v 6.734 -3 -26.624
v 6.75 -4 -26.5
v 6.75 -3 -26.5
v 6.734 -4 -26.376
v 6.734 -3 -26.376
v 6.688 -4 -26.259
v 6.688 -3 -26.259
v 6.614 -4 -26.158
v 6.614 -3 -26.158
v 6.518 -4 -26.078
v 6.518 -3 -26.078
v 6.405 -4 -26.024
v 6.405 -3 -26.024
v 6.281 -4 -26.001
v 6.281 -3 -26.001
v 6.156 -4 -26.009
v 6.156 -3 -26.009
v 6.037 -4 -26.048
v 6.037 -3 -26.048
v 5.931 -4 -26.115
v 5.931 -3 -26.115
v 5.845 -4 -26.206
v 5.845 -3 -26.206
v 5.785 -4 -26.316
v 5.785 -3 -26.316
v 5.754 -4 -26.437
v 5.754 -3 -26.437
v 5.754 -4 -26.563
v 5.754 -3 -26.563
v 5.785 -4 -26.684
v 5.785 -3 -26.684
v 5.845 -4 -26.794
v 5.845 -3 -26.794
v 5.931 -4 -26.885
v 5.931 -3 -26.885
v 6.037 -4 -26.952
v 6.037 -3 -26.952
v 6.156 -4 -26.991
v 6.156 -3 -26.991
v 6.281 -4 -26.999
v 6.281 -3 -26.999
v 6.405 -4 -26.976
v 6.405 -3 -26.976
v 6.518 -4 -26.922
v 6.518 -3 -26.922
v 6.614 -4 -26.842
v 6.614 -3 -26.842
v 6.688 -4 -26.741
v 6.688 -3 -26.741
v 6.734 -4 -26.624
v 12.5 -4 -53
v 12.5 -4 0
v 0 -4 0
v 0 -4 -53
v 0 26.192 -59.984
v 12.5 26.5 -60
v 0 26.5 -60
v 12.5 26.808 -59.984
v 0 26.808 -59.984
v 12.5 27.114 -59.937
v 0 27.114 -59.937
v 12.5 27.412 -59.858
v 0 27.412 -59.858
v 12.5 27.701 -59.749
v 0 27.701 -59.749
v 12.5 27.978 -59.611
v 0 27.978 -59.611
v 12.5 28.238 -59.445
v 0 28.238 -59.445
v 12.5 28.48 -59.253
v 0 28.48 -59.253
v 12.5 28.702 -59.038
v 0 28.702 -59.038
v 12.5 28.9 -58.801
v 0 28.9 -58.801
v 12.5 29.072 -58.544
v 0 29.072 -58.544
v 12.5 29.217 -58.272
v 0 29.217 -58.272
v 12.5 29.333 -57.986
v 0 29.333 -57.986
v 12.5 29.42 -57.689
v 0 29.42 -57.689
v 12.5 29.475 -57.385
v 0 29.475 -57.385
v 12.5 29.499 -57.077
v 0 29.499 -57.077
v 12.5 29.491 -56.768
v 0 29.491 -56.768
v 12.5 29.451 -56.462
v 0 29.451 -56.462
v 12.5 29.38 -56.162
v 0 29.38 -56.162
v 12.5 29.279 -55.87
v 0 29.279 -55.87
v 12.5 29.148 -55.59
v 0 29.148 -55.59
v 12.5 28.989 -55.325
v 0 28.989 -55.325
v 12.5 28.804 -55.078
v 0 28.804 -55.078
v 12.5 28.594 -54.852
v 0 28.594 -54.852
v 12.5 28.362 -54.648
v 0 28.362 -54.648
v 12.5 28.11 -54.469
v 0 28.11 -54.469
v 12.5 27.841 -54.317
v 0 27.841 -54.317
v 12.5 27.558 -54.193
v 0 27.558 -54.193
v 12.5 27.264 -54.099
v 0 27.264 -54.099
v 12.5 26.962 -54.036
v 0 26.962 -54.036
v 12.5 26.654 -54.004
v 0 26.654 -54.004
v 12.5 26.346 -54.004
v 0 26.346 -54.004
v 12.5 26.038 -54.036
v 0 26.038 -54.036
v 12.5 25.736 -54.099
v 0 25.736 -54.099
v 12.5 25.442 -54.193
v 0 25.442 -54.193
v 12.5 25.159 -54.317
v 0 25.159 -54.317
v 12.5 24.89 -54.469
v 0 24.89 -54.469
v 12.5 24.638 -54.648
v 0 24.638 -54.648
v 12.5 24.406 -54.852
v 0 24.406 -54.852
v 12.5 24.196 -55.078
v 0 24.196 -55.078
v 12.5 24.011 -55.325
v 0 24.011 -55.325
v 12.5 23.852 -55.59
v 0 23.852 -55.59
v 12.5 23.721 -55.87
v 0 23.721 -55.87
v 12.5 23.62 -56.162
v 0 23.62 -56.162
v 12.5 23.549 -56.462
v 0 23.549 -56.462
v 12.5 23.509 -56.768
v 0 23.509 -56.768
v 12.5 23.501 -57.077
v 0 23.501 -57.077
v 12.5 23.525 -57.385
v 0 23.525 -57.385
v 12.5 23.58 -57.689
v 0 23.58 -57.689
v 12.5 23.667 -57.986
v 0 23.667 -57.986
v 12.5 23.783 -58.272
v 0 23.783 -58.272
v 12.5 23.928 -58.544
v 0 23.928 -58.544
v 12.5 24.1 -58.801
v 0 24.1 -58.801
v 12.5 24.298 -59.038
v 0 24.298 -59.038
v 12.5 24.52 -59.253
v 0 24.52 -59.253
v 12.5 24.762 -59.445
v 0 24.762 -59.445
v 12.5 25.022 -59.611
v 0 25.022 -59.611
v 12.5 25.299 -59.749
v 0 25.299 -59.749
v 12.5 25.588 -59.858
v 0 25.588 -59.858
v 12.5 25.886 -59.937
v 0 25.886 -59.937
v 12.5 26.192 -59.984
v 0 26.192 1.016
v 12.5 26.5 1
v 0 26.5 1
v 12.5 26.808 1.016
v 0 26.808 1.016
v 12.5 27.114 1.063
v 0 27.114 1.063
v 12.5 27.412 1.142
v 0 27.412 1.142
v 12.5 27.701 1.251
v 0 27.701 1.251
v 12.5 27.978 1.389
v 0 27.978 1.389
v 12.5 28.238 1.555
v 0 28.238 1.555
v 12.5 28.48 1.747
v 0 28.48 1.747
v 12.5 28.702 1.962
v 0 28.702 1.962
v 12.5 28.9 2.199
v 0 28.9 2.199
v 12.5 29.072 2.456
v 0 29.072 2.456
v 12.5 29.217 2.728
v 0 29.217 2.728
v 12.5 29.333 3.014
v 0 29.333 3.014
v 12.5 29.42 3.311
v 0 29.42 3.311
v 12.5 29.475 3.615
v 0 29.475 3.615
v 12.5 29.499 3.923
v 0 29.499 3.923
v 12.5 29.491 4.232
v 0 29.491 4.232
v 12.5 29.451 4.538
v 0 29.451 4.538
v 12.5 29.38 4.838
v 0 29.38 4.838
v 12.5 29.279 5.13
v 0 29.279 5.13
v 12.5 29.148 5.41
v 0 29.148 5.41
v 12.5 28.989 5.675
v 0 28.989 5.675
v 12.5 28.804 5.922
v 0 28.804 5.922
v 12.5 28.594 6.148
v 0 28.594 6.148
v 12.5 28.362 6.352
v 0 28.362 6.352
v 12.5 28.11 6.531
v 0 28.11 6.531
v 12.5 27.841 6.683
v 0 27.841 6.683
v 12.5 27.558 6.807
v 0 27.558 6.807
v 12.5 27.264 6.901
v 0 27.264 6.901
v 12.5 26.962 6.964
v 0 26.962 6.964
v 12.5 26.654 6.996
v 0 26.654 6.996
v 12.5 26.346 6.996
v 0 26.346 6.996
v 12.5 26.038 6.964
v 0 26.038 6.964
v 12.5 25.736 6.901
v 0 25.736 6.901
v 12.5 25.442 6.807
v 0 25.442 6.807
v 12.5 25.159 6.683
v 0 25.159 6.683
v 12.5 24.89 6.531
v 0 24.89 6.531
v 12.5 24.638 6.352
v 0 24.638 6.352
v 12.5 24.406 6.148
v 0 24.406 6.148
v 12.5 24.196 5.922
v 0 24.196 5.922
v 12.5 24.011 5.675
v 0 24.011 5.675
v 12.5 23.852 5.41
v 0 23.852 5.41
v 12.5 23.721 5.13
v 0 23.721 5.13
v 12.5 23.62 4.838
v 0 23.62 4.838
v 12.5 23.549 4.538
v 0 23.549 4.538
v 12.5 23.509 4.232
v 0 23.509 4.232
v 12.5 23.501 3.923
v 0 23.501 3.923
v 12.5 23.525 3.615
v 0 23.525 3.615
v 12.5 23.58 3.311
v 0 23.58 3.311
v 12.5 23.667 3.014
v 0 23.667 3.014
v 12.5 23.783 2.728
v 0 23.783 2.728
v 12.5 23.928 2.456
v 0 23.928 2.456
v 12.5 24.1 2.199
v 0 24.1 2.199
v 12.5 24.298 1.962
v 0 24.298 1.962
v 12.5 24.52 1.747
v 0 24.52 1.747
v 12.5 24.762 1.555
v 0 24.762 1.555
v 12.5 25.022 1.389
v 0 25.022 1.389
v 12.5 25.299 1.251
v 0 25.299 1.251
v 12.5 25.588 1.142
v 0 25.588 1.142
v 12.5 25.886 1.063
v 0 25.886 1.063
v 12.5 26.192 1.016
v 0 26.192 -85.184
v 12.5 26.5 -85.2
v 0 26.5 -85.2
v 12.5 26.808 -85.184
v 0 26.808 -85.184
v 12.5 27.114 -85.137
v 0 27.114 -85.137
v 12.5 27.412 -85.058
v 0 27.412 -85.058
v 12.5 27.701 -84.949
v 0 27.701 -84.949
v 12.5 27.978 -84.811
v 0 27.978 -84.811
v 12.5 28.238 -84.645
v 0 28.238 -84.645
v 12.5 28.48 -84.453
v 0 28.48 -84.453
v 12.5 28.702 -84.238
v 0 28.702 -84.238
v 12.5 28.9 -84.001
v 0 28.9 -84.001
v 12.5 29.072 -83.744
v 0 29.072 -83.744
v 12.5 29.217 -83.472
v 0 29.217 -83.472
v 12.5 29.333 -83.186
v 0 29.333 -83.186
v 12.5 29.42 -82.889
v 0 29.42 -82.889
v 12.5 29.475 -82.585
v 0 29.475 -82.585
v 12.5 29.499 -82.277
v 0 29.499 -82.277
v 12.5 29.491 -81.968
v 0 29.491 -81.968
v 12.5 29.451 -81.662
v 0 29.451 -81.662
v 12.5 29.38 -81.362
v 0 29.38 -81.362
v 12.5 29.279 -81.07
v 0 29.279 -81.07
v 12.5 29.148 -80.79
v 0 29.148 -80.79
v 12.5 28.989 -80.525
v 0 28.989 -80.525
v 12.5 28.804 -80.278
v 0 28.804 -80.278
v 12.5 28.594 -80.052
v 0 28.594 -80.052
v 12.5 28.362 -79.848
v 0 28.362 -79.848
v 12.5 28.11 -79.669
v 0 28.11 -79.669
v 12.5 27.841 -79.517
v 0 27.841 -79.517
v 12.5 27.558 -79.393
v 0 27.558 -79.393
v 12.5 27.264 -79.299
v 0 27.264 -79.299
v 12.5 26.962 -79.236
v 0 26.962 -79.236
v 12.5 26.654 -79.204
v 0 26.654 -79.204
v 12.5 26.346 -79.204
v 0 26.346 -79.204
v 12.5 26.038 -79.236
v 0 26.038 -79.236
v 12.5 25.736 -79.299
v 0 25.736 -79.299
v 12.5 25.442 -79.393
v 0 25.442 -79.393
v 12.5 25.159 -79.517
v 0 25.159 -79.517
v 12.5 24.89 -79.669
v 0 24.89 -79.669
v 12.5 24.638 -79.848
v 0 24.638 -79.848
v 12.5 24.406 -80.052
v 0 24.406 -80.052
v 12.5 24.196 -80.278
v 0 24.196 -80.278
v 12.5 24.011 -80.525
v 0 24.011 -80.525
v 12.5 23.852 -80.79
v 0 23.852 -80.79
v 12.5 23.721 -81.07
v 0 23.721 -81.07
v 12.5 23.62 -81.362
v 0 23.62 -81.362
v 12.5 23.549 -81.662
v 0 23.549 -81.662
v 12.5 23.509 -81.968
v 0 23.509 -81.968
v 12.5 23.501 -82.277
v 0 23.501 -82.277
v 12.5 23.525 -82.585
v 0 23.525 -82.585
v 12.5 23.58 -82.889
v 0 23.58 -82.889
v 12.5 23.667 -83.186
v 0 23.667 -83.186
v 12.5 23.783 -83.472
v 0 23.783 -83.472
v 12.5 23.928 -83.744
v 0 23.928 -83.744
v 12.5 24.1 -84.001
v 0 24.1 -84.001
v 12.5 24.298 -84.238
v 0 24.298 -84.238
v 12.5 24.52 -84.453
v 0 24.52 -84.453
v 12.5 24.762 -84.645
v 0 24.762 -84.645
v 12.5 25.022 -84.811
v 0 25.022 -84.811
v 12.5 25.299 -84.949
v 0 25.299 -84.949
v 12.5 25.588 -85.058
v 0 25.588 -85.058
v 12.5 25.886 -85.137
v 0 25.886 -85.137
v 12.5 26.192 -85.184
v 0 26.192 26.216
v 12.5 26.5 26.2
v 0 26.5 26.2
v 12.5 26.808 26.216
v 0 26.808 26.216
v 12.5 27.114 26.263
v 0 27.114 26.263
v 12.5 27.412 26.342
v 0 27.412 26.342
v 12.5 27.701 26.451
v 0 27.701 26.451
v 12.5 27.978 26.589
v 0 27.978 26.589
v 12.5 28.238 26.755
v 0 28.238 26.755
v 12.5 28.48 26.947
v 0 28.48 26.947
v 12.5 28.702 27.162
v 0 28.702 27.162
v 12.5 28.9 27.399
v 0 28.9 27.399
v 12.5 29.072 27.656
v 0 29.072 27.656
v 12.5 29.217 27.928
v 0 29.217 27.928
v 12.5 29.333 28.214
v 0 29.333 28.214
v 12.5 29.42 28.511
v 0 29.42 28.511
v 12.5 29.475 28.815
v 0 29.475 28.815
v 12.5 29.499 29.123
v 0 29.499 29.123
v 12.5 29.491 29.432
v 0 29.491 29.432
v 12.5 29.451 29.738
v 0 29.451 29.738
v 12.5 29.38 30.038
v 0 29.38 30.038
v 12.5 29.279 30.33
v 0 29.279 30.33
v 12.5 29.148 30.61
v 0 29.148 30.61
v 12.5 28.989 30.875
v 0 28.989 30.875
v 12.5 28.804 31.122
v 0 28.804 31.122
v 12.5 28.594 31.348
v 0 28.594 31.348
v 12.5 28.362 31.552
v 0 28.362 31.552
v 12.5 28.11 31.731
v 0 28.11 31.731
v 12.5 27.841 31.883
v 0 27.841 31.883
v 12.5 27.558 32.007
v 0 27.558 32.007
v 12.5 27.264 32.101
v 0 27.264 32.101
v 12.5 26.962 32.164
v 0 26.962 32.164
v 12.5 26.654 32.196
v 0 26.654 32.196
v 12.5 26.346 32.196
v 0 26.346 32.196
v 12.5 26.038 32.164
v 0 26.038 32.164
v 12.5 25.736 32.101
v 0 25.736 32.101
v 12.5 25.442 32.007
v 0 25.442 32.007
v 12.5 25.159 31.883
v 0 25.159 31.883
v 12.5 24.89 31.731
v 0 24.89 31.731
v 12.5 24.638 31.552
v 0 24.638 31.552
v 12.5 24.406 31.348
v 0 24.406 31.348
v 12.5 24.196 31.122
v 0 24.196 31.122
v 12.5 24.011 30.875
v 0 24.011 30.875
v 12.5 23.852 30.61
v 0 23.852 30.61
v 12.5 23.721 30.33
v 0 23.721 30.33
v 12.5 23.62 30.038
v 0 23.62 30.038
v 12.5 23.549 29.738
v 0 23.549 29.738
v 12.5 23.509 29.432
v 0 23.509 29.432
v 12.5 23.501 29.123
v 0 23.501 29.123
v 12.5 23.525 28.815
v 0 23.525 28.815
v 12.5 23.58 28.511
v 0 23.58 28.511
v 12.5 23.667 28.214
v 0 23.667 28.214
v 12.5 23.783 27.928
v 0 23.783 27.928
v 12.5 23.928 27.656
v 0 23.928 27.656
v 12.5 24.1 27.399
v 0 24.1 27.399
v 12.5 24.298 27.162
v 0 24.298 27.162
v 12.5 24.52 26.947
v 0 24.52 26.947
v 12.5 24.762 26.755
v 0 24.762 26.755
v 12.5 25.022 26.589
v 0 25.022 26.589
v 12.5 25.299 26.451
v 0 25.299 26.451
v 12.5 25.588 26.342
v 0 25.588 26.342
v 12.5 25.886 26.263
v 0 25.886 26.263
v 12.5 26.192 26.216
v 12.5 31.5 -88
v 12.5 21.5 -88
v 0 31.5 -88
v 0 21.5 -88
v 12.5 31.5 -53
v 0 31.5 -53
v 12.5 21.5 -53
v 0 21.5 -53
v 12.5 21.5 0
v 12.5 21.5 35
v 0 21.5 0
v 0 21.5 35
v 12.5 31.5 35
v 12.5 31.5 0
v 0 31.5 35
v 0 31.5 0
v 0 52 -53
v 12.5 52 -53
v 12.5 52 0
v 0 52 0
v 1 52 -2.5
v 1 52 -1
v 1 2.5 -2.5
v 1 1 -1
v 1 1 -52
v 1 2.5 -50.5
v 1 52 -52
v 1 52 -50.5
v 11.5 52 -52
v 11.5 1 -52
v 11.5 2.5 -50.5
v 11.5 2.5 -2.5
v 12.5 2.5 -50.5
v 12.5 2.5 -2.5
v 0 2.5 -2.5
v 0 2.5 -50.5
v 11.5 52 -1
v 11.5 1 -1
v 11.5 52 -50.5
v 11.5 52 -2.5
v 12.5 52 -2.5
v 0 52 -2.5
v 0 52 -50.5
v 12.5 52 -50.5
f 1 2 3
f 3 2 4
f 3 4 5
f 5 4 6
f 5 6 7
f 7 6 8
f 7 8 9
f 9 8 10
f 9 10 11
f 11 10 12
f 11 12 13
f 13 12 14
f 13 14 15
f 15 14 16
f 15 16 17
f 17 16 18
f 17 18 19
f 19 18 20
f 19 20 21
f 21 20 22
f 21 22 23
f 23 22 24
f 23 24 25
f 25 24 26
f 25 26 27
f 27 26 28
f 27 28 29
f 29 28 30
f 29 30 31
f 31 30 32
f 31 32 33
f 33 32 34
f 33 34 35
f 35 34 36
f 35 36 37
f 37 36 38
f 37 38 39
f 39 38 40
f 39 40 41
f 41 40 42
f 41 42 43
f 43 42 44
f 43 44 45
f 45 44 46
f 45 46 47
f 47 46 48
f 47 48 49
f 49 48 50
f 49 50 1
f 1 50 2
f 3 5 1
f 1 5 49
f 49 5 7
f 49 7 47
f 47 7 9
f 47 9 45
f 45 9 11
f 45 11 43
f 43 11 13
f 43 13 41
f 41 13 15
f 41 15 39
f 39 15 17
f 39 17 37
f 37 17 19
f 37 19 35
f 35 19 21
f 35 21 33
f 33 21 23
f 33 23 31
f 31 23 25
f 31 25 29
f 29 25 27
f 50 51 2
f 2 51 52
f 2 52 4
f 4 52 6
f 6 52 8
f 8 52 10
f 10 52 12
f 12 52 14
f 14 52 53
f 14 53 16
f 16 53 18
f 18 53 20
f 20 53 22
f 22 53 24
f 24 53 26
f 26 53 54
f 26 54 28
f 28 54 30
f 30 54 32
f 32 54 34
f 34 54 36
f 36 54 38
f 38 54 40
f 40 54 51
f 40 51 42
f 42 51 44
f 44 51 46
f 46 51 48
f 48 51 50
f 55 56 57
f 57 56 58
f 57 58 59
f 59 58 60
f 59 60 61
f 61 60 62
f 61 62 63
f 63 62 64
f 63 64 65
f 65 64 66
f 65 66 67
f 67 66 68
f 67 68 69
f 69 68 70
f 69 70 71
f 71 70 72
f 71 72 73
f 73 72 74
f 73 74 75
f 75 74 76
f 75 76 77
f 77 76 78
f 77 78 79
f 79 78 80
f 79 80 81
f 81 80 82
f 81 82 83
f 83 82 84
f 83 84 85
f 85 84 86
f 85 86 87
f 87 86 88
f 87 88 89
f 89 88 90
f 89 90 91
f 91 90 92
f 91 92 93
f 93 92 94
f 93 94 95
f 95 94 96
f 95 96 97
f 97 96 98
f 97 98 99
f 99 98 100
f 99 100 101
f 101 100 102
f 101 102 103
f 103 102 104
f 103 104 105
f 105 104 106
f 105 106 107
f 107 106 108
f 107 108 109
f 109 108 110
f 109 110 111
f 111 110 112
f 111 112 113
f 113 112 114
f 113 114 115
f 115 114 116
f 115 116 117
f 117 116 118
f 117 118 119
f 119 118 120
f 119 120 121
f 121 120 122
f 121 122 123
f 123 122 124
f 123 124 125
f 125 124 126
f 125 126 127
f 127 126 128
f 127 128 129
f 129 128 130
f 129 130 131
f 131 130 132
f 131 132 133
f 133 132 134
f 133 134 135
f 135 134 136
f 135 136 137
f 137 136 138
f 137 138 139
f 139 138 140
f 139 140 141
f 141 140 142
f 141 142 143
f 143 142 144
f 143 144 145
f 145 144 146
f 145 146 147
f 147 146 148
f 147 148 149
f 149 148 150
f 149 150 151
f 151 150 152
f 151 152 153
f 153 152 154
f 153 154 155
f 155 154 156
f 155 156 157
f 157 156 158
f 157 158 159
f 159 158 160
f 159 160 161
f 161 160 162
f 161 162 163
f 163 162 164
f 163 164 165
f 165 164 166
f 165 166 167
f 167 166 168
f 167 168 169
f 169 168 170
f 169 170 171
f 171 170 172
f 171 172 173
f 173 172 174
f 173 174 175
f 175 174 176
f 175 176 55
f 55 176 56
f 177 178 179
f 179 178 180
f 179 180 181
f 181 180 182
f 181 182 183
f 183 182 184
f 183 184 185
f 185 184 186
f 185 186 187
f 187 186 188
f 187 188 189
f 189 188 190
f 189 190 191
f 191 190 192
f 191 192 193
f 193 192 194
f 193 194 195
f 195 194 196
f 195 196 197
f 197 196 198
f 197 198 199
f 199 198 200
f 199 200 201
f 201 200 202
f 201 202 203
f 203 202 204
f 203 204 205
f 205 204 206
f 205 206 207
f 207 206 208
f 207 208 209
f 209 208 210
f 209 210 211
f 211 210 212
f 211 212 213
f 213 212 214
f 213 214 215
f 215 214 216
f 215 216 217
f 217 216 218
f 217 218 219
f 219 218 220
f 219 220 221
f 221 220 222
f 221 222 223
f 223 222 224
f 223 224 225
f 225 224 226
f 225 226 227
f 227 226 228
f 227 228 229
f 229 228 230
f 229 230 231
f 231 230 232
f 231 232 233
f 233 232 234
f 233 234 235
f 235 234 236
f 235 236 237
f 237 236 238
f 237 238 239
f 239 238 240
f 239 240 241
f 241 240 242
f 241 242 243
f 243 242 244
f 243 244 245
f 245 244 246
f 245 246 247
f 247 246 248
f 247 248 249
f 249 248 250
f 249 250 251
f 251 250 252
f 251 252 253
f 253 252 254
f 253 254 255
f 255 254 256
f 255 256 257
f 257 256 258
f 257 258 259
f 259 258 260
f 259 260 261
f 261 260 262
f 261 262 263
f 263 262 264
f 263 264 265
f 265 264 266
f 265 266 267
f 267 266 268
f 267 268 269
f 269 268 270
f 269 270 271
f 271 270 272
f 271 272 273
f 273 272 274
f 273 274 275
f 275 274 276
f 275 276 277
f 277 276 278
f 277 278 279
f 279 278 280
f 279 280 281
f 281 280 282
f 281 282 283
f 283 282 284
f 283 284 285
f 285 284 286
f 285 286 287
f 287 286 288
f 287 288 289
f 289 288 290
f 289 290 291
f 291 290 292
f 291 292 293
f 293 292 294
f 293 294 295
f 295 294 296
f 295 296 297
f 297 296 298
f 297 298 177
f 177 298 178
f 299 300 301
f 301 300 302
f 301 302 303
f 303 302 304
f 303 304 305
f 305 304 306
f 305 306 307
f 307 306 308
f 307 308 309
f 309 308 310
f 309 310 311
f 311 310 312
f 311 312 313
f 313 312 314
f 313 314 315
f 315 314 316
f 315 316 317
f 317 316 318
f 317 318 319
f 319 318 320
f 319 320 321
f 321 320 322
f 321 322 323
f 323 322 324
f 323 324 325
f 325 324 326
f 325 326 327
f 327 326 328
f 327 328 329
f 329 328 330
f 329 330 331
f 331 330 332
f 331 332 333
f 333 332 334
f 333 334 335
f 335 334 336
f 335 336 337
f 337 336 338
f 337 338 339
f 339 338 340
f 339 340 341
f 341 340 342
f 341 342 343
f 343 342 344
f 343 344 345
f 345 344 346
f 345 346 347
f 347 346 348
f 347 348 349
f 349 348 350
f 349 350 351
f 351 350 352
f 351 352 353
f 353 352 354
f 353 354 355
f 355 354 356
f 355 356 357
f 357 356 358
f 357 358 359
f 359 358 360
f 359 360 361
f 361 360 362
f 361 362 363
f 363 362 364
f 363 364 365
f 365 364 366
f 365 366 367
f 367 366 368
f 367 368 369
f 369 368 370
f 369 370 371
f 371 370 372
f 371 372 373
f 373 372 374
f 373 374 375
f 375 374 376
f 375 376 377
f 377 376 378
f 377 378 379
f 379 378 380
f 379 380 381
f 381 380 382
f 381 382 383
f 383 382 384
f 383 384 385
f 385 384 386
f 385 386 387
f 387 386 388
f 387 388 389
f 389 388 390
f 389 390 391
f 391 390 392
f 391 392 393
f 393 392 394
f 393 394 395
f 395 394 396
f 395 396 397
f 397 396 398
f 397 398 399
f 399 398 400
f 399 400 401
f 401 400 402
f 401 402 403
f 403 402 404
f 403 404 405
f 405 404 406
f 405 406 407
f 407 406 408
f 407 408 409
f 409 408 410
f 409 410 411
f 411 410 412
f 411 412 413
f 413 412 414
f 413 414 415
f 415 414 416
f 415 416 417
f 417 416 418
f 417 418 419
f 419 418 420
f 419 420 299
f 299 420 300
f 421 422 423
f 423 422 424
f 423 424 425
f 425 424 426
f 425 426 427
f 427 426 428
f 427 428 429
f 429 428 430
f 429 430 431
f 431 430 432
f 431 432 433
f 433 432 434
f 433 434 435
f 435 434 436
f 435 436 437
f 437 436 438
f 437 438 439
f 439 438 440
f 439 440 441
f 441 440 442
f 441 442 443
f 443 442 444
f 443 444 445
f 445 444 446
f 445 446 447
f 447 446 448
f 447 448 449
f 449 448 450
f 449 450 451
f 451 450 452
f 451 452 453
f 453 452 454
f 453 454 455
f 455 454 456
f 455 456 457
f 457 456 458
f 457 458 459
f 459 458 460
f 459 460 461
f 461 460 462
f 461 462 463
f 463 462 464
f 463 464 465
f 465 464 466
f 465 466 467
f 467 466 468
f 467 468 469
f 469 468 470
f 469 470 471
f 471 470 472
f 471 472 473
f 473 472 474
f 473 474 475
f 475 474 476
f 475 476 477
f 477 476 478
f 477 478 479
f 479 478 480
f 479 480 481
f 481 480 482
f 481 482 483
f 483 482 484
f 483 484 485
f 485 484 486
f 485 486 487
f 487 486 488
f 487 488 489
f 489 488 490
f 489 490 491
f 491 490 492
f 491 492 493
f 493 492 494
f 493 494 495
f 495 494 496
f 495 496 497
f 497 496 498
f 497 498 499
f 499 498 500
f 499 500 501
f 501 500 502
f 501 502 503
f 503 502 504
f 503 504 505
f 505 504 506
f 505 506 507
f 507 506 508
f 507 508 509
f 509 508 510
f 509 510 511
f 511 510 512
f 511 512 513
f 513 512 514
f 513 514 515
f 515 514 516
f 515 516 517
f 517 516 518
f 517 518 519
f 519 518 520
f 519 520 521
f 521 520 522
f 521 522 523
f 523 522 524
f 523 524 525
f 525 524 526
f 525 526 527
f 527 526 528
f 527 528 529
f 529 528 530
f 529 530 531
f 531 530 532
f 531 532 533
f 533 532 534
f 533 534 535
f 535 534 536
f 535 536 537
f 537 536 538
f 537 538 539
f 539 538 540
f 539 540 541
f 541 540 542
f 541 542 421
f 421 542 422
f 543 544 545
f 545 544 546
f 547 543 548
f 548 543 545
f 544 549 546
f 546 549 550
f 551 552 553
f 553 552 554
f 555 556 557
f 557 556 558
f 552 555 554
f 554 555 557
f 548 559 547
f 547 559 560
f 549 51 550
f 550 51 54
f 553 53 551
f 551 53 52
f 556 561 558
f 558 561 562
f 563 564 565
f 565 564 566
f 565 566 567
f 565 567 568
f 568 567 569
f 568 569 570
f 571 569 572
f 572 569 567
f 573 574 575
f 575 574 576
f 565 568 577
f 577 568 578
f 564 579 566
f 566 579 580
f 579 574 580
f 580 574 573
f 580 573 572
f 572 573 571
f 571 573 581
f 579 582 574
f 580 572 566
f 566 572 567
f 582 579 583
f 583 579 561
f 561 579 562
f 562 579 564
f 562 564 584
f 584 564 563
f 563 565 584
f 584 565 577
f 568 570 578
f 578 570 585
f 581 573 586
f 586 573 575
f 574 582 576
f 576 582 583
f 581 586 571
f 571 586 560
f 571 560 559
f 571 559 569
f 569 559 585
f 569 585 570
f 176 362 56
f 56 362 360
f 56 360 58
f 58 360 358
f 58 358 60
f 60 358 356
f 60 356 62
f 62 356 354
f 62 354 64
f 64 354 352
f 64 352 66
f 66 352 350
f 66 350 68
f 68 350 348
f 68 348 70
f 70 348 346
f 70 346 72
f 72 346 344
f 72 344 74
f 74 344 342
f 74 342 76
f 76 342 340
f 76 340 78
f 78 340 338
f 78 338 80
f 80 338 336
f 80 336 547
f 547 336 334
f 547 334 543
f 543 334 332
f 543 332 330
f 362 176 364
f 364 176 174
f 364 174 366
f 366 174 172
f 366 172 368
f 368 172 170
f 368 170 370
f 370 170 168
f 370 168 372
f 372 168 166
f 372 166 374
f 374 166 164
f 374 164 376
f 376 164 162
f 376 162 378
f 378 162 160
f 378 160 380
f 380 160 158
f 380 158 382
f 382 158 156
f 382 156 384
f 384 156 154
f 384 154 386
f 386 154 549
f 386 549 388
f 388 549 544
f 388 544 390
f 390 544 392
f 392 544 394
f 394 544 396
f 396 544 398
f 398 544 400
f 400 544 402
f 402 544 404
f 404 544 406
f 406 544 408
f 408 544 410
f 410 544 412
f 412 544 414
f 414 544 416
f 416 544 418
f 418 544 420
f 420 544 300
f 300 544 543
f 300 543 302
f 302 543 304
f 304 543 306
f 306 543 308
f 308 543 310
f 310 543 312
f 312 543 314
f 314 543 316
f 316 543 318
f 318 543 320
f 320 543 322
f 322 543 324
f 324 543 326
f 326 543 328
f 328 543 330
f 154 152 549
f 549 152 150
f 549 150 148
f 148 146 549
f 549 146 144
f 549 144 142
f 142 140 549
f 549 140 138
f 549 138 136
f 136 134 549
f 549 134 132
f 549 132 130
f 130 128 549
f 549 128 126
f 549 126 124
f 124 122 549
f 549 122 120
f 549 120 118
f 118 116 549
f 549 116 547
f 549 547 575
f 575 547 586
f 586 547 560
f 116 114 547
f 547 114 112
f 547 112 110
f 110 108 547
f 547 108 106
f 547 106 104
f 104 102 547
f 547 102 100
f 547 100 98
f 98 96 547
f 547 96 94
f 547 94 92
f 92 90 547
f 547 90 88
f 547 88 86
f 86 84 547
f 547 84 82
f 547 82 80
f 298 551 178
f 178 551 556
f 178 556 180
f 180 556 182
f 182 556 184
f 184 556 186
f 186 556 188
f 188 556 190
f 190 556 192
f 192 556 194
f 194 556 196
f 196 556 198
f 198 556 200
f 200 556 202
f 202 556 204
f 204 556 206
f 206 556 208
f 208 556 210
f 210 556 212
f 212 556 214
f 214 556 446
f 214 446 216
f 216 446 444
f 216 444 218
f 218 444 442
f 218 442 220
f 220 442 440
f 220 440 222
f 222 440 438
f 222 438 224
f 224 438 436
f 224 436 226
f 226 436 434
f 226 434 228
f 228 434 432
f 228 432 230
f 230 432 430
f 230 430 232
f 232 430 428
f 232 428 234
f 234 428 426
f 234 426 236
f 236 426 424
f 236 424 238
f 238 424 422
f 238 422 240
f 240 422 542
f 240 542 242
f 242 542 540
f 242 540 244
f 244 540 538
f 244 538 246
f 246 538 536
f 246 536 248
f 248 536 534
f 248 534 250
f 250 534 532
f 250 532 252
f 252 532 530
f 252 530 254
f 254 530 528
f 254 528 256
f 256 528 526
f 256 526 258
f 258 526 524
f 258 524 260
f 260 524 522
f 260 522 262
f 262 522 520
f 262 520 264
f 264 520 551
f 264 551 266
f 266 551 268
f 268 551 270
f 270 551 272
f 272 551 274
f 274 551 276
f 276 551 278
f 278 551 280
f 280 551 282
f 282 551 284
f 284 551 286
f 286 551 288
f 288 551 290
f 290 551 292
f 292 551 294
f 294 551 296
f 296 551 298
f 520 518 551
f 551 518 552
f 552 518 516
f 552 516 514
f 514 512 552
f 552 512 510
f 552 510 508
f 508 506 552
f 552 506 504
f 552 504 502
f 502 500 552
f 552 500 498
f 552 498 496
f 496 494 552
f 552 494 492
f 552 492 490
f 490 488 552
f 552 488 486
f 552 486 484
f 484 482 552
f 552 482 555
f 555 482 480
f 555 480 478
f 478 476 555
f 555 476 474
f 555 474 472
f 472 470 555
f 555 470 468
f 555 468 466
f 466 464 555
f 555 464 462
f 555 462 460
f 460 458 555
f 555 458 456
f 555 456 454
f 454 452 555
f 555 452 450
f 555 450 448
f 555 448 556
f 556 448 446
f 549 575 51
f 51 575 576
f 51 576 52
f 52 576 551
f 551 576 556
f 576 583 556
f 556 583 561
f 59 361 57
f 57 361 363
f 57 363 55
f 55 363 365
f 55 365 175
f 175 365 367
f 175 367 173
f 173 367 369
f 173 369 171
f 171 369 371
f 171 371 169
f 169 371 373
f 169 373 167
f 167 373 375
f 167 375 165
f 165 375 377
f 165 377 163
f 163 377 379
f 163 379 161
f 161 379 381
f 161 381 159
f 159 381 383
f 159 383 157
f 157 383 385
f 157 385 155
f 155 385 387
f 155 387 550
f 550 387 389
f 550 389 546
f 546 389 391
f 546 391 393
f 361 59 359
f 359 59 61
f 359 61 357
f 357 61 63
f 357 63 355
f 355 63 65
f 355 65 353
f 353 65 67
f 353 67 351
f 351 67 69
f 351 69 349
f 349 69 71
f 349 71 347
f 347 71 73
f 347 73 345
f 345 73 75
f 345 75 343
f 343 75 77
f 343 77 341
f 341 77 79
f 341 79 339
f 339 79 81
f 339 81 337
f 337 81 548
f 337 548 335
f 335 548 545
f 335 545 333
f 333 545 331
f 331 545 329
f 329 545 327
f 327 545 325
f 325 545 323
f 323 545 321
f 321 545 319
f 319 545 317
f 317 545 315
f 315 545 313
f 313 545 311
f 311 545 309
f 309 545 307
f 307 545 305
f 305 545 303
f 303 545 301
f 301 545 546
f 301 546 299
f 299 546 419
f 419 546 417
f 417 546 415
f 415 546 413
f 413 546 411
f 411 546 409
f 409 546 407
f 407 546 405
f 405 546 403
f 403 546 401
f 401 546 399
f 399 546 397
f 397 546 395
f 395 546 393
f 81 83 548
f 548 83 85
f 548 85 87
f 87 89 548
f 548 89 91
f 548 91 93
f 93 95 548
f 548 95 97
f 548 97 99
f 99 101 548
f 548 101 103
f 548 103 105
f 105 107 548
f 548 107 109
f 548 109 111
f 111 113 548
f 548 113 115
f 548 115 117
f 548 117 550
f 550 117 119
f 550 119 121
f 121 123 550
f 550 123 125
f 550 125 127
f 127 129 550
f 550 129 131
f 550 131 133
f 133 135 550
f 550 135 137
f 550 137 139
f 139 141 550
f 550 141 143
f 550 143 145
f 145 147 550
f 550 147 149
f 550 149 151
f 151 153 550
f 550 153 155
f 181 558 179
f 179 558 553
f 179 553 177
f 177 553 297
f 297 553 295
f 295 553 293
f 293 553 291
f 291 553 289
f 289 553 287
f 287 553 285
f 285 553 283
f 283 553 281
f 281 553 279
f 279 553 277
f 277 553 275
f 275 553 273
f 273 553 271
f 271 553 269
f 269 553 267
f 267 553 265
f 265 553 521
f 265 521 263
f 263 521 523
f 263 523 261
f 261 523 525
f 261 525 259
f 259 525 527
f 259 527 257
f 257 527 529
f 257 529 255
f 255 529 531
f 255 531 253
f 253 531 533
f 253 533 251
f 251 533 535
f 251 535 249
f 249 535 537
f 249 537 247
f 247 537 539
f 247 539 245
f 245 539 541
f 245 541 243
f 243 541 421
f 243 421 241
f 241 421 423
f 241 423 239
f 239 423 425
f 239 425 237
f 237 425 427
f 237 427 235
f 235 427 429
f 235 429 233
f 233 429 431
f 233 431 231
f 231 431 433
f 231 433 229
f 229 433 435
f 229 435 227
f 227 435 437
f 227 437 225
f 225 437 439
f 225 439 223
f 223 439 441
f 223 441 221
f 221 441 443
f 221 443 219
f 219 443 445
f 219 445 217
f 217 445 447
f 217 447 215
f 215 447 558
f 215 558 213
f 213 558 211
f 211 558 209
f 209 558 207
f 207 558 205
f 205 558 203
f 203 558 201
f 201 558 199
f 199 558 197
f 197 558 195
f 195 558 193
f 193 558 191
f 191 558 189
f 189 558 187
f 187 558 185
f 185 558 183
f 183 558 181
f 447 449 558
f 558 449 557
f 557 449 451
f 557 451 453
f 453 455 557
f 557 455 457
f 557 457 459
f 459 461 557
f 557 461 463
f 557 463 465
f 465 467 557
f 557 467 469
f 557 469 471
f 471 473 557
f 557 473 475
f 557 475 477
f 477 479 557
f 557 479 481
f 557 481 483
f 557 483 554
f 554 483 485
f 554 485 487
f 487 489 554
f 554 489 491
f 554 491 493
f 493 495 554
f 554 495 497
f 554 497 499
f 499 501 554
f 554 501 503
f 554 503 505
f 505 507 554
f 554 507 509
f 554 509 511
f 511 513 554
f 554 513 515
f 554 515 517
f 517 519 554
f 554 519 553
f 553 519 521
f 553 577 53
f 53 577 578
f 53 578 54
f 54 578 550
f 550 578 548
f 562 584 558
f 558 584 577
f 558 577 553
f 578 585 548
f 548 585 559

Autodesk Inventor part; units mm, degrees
ref_plane "YZ Plane" through (0, 0, 0) normal (1, 0, 0) x (0, 1, 0)
ref_plane "XZ Plane" through (0, 0, 0) normal (0, 1, 0) x (-1, 0, 0)
ref_plane "XY Plane" through (0, 0, 0) normal (0, 0, 1) x (1, 0, 0)
sketch "Sketch1" plane through (0, 0, 0) normal (1, 0, 0) x (0, 1, 0)
  line L0 (0, 0) -> (52, 0)
  line L1 (52, 0) -> (52, -53)
  line L2 (52, -53) -> (0, -53)
  line L3 (0, -53) -> (0, 0)
  line L4 (0, 0) -> (2.5, 0) construction
  line L5 (2.5, 0) -> (2.5, -2.5) construction
  line L6 (52, -53) -> (52, -50.5) construction
  line L7 (52, 0) -> (52, -2.5) construction
  line L8 (2.5, -2.5) -> (52, -2.5)
  line L9 (52, -2.5) -> (52, -50.5)
  line L10 (52, -50.5) -> (2.5, -50.5)
  line L11 (2.5, -50.5) -> (2.5, -2.5)
  dimension "d0" = 53
  dimension "d1" = 52
  dimension "d2" = 2.5
  dimension "d3" = 2.5
  dimension "d4" = 2.5
  dimension "d5" = 2.5
extrude "Extrusion1" add sketch "Sketch1" along normal blind 12.5 contours L0 L1 L8 L11 L10 L2 L3
sketch "Sketch2" plane through (0, 52, -50.5) normal (0, 1, 0) x (1, 0, 0)
  line L0 (12.5, 2.5) -> (12.5, 0) construction
  line L1 (12.5, 2.5) -> (11.5, 2.5) construction
  line L2 (0, 2.5) -> (12.5, 2.5) construction
  line L3 (11.5, 2.5) -> (11.5, 1.5) construction
  line L4 (0, 2.5) -> (1, 2.5) construction
  line L5 (1, 2.5) -> (1, 1.5) construction
  line L6 (0, -50.5) -> (12.5, -50.5) construction
  line L7 (12.5, -50.5) -> (11.5, -50.5) construction
  line L8 (11.5, -50.5) -> (11.5, -49.5) construction
  line L9 (0, -50.5) -> (1, -50.5) construction
  line L10 (1, -50.5) -> (1, -49.5) construction
  line L11 (1, -49.5) -> (11.5, -49.5)
  line L12 (11.5, -49.5) -> (11.5, -48)
  line L13 (11.5, -48) -> (1, -48)
  line L14 (1, -48) -> (1, -49.5)
  line L15 (1, 1.5) -> (11.5, 1.5)
  line L16 (11.5, 1.5) -> (11.5, 0)
  line L17 (11.5, 0) -> (1, 0)
  line L18 (1, 0) -> (1, 1.5)
  dimension "d8" = 1
  dimension "d9" = 1
  dimension "d10" = 1
  dimension "d11" = 1
  dimension "d14" = 1
  dimension "d15" = 1
  dimension "d16" = 1
  dimension "d17" = 1
  dimension "d18" = 1.5
  dimension "d19" = 10.5
  dimension "d20" = 10.5
  dimension "d21" = 1.5
extrude "Extrusion2" cut sketch "Sketch2" against normal blind 51
sketch "Sketch3" plane through (0, 2.5, -2.5) normal (0, 1, 0) x (1, 0, 0)
  line L0 (0, -2.5) -> (1, -2.5) construction
  line L1 (0, -2.5) -> (12.5, -2.5) construction
  line L2 (0, -2.5) -> (0, -1.5) construction
  line L3 (0, -2.5) -> (0, 50.5) construction
  line L4 (0, -1.5) -> (1, -1.5) construction
  line L5 (1, -1.5) -> (11.5, -1.5)
  line L6 (11.5, -1.5) -> (11.5, 49.5)
  line L7 (11.5, 49.5) -> (1, 49.5)
  line L8 (1, 49.5) -> (1, -1.5)
  dimension "d23" = 1
  dimension "d24" = 1
  dimension "d25" = 10.5
  dimension "d26" = 51
extrude "Extrusion3" cut sketch "Sketch3" against normal blind 1.5
sketch "Sketch4" plane through (12.5, 0, 0) normal (1, 0, 0) x (0, 0, -1)
  line L0 (53, 52) -> (50.5, 52) construction
  line L1 (53, 52) -> (53, 26.5) construction
  line L2 (53, 26.5) -> (108.8773, 26.5) construction
  line L3 (53, 26.5) -> (53, 31.5) construction
  line L4 (53, 0) -> (53, 52) construction
  line L5 (53, 31.5) -> (88, 31.5)
  line L6 (88, 31.5) -> (88, 21.5)
  line L7 (88, 21.5) -> (53, 21.5)
  line L8 (53, 21.5) -> (53, 31.5)
  line L9 (0, 52) -> (0, 26.5) construction
  line L10 (0, 52) -> (0, 0) construction
  line L11 (0, 26.5) -> (-54.8348, 26.5) construction
  line L12 (0, 26.5) -> (0, 31.5) construction
  line L13 (0, 31.5) -> (-35, 31.5)
  line L14 (-35, 31.5) -> (-35, 21.5)
  line L15 (-35, 21.5) -> (0, 21.5)
  line L16 (0, 21.5) -> (0, 31.5)
  dimension "d29" = 25.5
  dimension "d30" = 5
  dimension "d31" = 10
  dimension "d32" = 35
  dimension "d41" = 25.5
  dimension "d42" = 5
  dimension "d43" = 35
  dimension "d44" = 10
extrude "Extrusion4" add sketch "Sketch4" against normal blind 12.5
sketch "Sketch5" plane through (12.5, 0, 0) normal (1, 0, 0) x (0, 0, -1)
  line L0 (53, 52) -> (50.5, 52) construction
  line L1 (50.5, 52) -> (50.5, 26.5) construction
  line L2 (50.5, 52) -> (50.5, 2.5) construction
  line L3 (50.5, 26.5) -> (53, 26.5) construction
  line L4 (53, 26.5) -> (57, 26.5) construction
  circle A0 centre (57, 26.5) radius 3
  line L5 (57, 26.5) -> (82.2, 26.5) construction
  circle A1 centre (82.2, 26.5) radius 3
  line L6 (0, 52) -> (0, 26.5) construction
  line L7 (0, 26.5) -> (-4, 26.5) construction
  line L8 (-4, 26.5) -> (-29.2, 26.5) construction
  circle A2 centre (-4, 26.5) radius 3
  circle A3 centre (-29.2, 26.5) radius 3
  point P0 (0, 0)
  dimension "d35" = 25.5
  dimension "d36" = 2.5
  dimension "d37" = 6
  dimension "d38" = 4
  dimension "d39" = 25.2
  dimension "d40" = 6
  dimension "d45" = 25.5
  dimension "d46" = 4
  dimension "d47" = 25.2
  dimension "d48" = 6
  dimension "d49" = 6
extrude "Extrusion5" cut sketch "Sketch5" against normal blind 12.5
sketch "Sketch6" plane through (0, 0, -53) normal (0, -1, 0) x (1, 0, 0)
  line L0 (12.5, 53) -> (0, 53)
  line L1 (0, 53) -> (0, 0)
  line L2 (0, 0) -> (12.5, 0)
  line L3 (12.5, 0) -> (12.5, 53)
  line L4 (12.5, 53) -> (12.5, 0) projected
  dimension "d54" = 0
extrude "Extrusion6" add sketch "Sketch6" along normal blind 4
sketch "Sketch7" plane through (0, -4, -53) normal (0, -1, 0) x (1, 0, 0)
  line L0 (12.5, 53) -> (0, 53) construction
  line L1 (6.25, 53) -> (6.25, 26.5) construction
  circle A0 centre (6.25, 26.5) radius 0.5
  dimension "d55" = 26.5
  dimension "d56" = 1
extrude "Extrusion7" cut sketch "Sketch7" against normal blind 1
equation "\"d0\" = lfan + 2 * thickness"
equation "\"d1\" = lfan + thickness"
equation "\"d2\" = fanclip"
equation "\"d3\" = fanclip"
equation "\"d4\" = fanclip"
equation "\"d5\" = fanclip"
equation "\"d6\" = tfan + 2 * thickness"
equation "\"d8\" = thickness"
equation "\"d9\" = thickness"
equation "\"d10\" = thickness"
equation "\"d11\" = thickness"
equation "\"d14\" = thickness"
equation "\"d15\" = thickness"
equation "\"d16\" = thickness"
equation "\"d17\" = thickness"
equation "\"d18\" = fanclip - thickness"
equation "\"d19\" = tfan"
equation "\"d20\" = tfan"
equation "\"d21\" = fanclip - thickness"
equation "\"d12\" = lfan"
equation "\"d23\" = thickness"
equation "\"d24\" = thickness"
equation "\"d25\" = tfan"
equation "\"d26\" = lfan"
equation "\"d27\" = fanclip - thickness"
equation "\"d29\" = 0.5 * lfan"
equation "\"d30\" = 0.5 * twing"
equation "\"d31\" = twing"
equation "\"d32\" = lwing"
equation "\"d41\" = 0.5 * lfan"
equation "\"d42\" = 0.5 * twing"
equation "\"d43\" = lwing"
equation "\"d44\" = twing"
equation "\"d33\" = tfan + 2 * thickness"
equation "\"d35\" = 0.5 * lfan"
equation "\"d36\" = fanclip"
equation "\"d37\" = dPhoto"
equation "\"d38\" = gapto1"
equation "\"d39\" = gapto2"
equation "\"d40\" = dPhoto"
equation "\"d45\" = 0.5 * lfan"
equation "\"d46\" = gapto1"
equation "\"d47\" = gapto2"
equation "\"d48\" = dPhoto"
equation "\"d49\" = dPhoto"
equation "\"d50\" = tfan + 2 * thickness"
equation "\"d52\" = 4 * thickness"
equation "\"d55\" = 0.5 * lfan + thickness"
equation "\"d57\" = thickness"
equation "\"lfan\" = 51"
equation "\"tfan\" = 10.5"
equation "\"thickness\" = 1"
equation "\"fanclip\" = 2.5"
equation "\"twing\" = 10"
equation "\"lwing\" = 35"
equation "\"dPhoto\" = 6"
equation "\"gapto1\" = 4"
equation "\"gapto2\" = 25.2"
properties part number "FanPTMounts"
